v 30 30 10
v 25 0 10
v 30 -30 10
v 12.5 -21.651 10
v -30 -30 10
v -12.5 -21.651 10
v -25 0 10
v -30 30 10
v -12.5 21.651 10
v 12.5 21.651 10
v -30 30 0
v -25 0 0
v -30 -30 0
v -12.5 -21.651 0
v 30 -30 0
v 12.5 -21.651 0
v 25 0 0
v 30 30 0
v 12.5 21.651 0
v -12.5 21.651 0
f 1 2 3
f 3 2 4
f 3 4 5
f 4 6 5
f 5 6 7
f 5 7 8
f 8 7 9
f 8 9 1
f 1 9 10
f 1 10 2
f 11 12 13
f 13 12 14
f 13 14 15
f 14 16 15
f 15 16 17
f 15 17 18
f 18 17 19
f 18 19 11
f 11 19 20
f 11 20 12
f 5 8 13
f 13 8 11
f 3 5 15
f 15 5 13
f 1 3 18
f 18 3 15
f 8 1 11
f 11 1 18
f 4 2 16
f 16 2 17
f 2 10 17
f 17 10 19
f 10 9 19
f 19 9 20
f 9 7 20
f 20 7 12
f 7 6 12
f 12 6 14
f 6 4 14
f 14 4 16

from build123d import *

# Parameters (mm, degrees)
SCHIZZO1_W                   = 60
SCHIZZO1_H                   = 60
ESTRUSIONE_ESTRUSIONE1_DEPTH = 10


with BuildPart() as part:
    # Schizzo1 → Estrusione-Estrusione1 (new body)
    with BuildSketch(Plane.XY):
        Rectangle(SCHIZZO1_W, SCHIZZO1_H)
        Polygon((12.5, -21.650635095), (25, 0), (12.5, 21.650635095), (-12.5, 21.650635095), (-25, 0), (-12.5, -21.650635095), align=None, mode=Mode.SUBTRACT)
    extrude(amount=ESTRUSIONE_ESTRUSIONE1_DEPTH)


solid = part.part
